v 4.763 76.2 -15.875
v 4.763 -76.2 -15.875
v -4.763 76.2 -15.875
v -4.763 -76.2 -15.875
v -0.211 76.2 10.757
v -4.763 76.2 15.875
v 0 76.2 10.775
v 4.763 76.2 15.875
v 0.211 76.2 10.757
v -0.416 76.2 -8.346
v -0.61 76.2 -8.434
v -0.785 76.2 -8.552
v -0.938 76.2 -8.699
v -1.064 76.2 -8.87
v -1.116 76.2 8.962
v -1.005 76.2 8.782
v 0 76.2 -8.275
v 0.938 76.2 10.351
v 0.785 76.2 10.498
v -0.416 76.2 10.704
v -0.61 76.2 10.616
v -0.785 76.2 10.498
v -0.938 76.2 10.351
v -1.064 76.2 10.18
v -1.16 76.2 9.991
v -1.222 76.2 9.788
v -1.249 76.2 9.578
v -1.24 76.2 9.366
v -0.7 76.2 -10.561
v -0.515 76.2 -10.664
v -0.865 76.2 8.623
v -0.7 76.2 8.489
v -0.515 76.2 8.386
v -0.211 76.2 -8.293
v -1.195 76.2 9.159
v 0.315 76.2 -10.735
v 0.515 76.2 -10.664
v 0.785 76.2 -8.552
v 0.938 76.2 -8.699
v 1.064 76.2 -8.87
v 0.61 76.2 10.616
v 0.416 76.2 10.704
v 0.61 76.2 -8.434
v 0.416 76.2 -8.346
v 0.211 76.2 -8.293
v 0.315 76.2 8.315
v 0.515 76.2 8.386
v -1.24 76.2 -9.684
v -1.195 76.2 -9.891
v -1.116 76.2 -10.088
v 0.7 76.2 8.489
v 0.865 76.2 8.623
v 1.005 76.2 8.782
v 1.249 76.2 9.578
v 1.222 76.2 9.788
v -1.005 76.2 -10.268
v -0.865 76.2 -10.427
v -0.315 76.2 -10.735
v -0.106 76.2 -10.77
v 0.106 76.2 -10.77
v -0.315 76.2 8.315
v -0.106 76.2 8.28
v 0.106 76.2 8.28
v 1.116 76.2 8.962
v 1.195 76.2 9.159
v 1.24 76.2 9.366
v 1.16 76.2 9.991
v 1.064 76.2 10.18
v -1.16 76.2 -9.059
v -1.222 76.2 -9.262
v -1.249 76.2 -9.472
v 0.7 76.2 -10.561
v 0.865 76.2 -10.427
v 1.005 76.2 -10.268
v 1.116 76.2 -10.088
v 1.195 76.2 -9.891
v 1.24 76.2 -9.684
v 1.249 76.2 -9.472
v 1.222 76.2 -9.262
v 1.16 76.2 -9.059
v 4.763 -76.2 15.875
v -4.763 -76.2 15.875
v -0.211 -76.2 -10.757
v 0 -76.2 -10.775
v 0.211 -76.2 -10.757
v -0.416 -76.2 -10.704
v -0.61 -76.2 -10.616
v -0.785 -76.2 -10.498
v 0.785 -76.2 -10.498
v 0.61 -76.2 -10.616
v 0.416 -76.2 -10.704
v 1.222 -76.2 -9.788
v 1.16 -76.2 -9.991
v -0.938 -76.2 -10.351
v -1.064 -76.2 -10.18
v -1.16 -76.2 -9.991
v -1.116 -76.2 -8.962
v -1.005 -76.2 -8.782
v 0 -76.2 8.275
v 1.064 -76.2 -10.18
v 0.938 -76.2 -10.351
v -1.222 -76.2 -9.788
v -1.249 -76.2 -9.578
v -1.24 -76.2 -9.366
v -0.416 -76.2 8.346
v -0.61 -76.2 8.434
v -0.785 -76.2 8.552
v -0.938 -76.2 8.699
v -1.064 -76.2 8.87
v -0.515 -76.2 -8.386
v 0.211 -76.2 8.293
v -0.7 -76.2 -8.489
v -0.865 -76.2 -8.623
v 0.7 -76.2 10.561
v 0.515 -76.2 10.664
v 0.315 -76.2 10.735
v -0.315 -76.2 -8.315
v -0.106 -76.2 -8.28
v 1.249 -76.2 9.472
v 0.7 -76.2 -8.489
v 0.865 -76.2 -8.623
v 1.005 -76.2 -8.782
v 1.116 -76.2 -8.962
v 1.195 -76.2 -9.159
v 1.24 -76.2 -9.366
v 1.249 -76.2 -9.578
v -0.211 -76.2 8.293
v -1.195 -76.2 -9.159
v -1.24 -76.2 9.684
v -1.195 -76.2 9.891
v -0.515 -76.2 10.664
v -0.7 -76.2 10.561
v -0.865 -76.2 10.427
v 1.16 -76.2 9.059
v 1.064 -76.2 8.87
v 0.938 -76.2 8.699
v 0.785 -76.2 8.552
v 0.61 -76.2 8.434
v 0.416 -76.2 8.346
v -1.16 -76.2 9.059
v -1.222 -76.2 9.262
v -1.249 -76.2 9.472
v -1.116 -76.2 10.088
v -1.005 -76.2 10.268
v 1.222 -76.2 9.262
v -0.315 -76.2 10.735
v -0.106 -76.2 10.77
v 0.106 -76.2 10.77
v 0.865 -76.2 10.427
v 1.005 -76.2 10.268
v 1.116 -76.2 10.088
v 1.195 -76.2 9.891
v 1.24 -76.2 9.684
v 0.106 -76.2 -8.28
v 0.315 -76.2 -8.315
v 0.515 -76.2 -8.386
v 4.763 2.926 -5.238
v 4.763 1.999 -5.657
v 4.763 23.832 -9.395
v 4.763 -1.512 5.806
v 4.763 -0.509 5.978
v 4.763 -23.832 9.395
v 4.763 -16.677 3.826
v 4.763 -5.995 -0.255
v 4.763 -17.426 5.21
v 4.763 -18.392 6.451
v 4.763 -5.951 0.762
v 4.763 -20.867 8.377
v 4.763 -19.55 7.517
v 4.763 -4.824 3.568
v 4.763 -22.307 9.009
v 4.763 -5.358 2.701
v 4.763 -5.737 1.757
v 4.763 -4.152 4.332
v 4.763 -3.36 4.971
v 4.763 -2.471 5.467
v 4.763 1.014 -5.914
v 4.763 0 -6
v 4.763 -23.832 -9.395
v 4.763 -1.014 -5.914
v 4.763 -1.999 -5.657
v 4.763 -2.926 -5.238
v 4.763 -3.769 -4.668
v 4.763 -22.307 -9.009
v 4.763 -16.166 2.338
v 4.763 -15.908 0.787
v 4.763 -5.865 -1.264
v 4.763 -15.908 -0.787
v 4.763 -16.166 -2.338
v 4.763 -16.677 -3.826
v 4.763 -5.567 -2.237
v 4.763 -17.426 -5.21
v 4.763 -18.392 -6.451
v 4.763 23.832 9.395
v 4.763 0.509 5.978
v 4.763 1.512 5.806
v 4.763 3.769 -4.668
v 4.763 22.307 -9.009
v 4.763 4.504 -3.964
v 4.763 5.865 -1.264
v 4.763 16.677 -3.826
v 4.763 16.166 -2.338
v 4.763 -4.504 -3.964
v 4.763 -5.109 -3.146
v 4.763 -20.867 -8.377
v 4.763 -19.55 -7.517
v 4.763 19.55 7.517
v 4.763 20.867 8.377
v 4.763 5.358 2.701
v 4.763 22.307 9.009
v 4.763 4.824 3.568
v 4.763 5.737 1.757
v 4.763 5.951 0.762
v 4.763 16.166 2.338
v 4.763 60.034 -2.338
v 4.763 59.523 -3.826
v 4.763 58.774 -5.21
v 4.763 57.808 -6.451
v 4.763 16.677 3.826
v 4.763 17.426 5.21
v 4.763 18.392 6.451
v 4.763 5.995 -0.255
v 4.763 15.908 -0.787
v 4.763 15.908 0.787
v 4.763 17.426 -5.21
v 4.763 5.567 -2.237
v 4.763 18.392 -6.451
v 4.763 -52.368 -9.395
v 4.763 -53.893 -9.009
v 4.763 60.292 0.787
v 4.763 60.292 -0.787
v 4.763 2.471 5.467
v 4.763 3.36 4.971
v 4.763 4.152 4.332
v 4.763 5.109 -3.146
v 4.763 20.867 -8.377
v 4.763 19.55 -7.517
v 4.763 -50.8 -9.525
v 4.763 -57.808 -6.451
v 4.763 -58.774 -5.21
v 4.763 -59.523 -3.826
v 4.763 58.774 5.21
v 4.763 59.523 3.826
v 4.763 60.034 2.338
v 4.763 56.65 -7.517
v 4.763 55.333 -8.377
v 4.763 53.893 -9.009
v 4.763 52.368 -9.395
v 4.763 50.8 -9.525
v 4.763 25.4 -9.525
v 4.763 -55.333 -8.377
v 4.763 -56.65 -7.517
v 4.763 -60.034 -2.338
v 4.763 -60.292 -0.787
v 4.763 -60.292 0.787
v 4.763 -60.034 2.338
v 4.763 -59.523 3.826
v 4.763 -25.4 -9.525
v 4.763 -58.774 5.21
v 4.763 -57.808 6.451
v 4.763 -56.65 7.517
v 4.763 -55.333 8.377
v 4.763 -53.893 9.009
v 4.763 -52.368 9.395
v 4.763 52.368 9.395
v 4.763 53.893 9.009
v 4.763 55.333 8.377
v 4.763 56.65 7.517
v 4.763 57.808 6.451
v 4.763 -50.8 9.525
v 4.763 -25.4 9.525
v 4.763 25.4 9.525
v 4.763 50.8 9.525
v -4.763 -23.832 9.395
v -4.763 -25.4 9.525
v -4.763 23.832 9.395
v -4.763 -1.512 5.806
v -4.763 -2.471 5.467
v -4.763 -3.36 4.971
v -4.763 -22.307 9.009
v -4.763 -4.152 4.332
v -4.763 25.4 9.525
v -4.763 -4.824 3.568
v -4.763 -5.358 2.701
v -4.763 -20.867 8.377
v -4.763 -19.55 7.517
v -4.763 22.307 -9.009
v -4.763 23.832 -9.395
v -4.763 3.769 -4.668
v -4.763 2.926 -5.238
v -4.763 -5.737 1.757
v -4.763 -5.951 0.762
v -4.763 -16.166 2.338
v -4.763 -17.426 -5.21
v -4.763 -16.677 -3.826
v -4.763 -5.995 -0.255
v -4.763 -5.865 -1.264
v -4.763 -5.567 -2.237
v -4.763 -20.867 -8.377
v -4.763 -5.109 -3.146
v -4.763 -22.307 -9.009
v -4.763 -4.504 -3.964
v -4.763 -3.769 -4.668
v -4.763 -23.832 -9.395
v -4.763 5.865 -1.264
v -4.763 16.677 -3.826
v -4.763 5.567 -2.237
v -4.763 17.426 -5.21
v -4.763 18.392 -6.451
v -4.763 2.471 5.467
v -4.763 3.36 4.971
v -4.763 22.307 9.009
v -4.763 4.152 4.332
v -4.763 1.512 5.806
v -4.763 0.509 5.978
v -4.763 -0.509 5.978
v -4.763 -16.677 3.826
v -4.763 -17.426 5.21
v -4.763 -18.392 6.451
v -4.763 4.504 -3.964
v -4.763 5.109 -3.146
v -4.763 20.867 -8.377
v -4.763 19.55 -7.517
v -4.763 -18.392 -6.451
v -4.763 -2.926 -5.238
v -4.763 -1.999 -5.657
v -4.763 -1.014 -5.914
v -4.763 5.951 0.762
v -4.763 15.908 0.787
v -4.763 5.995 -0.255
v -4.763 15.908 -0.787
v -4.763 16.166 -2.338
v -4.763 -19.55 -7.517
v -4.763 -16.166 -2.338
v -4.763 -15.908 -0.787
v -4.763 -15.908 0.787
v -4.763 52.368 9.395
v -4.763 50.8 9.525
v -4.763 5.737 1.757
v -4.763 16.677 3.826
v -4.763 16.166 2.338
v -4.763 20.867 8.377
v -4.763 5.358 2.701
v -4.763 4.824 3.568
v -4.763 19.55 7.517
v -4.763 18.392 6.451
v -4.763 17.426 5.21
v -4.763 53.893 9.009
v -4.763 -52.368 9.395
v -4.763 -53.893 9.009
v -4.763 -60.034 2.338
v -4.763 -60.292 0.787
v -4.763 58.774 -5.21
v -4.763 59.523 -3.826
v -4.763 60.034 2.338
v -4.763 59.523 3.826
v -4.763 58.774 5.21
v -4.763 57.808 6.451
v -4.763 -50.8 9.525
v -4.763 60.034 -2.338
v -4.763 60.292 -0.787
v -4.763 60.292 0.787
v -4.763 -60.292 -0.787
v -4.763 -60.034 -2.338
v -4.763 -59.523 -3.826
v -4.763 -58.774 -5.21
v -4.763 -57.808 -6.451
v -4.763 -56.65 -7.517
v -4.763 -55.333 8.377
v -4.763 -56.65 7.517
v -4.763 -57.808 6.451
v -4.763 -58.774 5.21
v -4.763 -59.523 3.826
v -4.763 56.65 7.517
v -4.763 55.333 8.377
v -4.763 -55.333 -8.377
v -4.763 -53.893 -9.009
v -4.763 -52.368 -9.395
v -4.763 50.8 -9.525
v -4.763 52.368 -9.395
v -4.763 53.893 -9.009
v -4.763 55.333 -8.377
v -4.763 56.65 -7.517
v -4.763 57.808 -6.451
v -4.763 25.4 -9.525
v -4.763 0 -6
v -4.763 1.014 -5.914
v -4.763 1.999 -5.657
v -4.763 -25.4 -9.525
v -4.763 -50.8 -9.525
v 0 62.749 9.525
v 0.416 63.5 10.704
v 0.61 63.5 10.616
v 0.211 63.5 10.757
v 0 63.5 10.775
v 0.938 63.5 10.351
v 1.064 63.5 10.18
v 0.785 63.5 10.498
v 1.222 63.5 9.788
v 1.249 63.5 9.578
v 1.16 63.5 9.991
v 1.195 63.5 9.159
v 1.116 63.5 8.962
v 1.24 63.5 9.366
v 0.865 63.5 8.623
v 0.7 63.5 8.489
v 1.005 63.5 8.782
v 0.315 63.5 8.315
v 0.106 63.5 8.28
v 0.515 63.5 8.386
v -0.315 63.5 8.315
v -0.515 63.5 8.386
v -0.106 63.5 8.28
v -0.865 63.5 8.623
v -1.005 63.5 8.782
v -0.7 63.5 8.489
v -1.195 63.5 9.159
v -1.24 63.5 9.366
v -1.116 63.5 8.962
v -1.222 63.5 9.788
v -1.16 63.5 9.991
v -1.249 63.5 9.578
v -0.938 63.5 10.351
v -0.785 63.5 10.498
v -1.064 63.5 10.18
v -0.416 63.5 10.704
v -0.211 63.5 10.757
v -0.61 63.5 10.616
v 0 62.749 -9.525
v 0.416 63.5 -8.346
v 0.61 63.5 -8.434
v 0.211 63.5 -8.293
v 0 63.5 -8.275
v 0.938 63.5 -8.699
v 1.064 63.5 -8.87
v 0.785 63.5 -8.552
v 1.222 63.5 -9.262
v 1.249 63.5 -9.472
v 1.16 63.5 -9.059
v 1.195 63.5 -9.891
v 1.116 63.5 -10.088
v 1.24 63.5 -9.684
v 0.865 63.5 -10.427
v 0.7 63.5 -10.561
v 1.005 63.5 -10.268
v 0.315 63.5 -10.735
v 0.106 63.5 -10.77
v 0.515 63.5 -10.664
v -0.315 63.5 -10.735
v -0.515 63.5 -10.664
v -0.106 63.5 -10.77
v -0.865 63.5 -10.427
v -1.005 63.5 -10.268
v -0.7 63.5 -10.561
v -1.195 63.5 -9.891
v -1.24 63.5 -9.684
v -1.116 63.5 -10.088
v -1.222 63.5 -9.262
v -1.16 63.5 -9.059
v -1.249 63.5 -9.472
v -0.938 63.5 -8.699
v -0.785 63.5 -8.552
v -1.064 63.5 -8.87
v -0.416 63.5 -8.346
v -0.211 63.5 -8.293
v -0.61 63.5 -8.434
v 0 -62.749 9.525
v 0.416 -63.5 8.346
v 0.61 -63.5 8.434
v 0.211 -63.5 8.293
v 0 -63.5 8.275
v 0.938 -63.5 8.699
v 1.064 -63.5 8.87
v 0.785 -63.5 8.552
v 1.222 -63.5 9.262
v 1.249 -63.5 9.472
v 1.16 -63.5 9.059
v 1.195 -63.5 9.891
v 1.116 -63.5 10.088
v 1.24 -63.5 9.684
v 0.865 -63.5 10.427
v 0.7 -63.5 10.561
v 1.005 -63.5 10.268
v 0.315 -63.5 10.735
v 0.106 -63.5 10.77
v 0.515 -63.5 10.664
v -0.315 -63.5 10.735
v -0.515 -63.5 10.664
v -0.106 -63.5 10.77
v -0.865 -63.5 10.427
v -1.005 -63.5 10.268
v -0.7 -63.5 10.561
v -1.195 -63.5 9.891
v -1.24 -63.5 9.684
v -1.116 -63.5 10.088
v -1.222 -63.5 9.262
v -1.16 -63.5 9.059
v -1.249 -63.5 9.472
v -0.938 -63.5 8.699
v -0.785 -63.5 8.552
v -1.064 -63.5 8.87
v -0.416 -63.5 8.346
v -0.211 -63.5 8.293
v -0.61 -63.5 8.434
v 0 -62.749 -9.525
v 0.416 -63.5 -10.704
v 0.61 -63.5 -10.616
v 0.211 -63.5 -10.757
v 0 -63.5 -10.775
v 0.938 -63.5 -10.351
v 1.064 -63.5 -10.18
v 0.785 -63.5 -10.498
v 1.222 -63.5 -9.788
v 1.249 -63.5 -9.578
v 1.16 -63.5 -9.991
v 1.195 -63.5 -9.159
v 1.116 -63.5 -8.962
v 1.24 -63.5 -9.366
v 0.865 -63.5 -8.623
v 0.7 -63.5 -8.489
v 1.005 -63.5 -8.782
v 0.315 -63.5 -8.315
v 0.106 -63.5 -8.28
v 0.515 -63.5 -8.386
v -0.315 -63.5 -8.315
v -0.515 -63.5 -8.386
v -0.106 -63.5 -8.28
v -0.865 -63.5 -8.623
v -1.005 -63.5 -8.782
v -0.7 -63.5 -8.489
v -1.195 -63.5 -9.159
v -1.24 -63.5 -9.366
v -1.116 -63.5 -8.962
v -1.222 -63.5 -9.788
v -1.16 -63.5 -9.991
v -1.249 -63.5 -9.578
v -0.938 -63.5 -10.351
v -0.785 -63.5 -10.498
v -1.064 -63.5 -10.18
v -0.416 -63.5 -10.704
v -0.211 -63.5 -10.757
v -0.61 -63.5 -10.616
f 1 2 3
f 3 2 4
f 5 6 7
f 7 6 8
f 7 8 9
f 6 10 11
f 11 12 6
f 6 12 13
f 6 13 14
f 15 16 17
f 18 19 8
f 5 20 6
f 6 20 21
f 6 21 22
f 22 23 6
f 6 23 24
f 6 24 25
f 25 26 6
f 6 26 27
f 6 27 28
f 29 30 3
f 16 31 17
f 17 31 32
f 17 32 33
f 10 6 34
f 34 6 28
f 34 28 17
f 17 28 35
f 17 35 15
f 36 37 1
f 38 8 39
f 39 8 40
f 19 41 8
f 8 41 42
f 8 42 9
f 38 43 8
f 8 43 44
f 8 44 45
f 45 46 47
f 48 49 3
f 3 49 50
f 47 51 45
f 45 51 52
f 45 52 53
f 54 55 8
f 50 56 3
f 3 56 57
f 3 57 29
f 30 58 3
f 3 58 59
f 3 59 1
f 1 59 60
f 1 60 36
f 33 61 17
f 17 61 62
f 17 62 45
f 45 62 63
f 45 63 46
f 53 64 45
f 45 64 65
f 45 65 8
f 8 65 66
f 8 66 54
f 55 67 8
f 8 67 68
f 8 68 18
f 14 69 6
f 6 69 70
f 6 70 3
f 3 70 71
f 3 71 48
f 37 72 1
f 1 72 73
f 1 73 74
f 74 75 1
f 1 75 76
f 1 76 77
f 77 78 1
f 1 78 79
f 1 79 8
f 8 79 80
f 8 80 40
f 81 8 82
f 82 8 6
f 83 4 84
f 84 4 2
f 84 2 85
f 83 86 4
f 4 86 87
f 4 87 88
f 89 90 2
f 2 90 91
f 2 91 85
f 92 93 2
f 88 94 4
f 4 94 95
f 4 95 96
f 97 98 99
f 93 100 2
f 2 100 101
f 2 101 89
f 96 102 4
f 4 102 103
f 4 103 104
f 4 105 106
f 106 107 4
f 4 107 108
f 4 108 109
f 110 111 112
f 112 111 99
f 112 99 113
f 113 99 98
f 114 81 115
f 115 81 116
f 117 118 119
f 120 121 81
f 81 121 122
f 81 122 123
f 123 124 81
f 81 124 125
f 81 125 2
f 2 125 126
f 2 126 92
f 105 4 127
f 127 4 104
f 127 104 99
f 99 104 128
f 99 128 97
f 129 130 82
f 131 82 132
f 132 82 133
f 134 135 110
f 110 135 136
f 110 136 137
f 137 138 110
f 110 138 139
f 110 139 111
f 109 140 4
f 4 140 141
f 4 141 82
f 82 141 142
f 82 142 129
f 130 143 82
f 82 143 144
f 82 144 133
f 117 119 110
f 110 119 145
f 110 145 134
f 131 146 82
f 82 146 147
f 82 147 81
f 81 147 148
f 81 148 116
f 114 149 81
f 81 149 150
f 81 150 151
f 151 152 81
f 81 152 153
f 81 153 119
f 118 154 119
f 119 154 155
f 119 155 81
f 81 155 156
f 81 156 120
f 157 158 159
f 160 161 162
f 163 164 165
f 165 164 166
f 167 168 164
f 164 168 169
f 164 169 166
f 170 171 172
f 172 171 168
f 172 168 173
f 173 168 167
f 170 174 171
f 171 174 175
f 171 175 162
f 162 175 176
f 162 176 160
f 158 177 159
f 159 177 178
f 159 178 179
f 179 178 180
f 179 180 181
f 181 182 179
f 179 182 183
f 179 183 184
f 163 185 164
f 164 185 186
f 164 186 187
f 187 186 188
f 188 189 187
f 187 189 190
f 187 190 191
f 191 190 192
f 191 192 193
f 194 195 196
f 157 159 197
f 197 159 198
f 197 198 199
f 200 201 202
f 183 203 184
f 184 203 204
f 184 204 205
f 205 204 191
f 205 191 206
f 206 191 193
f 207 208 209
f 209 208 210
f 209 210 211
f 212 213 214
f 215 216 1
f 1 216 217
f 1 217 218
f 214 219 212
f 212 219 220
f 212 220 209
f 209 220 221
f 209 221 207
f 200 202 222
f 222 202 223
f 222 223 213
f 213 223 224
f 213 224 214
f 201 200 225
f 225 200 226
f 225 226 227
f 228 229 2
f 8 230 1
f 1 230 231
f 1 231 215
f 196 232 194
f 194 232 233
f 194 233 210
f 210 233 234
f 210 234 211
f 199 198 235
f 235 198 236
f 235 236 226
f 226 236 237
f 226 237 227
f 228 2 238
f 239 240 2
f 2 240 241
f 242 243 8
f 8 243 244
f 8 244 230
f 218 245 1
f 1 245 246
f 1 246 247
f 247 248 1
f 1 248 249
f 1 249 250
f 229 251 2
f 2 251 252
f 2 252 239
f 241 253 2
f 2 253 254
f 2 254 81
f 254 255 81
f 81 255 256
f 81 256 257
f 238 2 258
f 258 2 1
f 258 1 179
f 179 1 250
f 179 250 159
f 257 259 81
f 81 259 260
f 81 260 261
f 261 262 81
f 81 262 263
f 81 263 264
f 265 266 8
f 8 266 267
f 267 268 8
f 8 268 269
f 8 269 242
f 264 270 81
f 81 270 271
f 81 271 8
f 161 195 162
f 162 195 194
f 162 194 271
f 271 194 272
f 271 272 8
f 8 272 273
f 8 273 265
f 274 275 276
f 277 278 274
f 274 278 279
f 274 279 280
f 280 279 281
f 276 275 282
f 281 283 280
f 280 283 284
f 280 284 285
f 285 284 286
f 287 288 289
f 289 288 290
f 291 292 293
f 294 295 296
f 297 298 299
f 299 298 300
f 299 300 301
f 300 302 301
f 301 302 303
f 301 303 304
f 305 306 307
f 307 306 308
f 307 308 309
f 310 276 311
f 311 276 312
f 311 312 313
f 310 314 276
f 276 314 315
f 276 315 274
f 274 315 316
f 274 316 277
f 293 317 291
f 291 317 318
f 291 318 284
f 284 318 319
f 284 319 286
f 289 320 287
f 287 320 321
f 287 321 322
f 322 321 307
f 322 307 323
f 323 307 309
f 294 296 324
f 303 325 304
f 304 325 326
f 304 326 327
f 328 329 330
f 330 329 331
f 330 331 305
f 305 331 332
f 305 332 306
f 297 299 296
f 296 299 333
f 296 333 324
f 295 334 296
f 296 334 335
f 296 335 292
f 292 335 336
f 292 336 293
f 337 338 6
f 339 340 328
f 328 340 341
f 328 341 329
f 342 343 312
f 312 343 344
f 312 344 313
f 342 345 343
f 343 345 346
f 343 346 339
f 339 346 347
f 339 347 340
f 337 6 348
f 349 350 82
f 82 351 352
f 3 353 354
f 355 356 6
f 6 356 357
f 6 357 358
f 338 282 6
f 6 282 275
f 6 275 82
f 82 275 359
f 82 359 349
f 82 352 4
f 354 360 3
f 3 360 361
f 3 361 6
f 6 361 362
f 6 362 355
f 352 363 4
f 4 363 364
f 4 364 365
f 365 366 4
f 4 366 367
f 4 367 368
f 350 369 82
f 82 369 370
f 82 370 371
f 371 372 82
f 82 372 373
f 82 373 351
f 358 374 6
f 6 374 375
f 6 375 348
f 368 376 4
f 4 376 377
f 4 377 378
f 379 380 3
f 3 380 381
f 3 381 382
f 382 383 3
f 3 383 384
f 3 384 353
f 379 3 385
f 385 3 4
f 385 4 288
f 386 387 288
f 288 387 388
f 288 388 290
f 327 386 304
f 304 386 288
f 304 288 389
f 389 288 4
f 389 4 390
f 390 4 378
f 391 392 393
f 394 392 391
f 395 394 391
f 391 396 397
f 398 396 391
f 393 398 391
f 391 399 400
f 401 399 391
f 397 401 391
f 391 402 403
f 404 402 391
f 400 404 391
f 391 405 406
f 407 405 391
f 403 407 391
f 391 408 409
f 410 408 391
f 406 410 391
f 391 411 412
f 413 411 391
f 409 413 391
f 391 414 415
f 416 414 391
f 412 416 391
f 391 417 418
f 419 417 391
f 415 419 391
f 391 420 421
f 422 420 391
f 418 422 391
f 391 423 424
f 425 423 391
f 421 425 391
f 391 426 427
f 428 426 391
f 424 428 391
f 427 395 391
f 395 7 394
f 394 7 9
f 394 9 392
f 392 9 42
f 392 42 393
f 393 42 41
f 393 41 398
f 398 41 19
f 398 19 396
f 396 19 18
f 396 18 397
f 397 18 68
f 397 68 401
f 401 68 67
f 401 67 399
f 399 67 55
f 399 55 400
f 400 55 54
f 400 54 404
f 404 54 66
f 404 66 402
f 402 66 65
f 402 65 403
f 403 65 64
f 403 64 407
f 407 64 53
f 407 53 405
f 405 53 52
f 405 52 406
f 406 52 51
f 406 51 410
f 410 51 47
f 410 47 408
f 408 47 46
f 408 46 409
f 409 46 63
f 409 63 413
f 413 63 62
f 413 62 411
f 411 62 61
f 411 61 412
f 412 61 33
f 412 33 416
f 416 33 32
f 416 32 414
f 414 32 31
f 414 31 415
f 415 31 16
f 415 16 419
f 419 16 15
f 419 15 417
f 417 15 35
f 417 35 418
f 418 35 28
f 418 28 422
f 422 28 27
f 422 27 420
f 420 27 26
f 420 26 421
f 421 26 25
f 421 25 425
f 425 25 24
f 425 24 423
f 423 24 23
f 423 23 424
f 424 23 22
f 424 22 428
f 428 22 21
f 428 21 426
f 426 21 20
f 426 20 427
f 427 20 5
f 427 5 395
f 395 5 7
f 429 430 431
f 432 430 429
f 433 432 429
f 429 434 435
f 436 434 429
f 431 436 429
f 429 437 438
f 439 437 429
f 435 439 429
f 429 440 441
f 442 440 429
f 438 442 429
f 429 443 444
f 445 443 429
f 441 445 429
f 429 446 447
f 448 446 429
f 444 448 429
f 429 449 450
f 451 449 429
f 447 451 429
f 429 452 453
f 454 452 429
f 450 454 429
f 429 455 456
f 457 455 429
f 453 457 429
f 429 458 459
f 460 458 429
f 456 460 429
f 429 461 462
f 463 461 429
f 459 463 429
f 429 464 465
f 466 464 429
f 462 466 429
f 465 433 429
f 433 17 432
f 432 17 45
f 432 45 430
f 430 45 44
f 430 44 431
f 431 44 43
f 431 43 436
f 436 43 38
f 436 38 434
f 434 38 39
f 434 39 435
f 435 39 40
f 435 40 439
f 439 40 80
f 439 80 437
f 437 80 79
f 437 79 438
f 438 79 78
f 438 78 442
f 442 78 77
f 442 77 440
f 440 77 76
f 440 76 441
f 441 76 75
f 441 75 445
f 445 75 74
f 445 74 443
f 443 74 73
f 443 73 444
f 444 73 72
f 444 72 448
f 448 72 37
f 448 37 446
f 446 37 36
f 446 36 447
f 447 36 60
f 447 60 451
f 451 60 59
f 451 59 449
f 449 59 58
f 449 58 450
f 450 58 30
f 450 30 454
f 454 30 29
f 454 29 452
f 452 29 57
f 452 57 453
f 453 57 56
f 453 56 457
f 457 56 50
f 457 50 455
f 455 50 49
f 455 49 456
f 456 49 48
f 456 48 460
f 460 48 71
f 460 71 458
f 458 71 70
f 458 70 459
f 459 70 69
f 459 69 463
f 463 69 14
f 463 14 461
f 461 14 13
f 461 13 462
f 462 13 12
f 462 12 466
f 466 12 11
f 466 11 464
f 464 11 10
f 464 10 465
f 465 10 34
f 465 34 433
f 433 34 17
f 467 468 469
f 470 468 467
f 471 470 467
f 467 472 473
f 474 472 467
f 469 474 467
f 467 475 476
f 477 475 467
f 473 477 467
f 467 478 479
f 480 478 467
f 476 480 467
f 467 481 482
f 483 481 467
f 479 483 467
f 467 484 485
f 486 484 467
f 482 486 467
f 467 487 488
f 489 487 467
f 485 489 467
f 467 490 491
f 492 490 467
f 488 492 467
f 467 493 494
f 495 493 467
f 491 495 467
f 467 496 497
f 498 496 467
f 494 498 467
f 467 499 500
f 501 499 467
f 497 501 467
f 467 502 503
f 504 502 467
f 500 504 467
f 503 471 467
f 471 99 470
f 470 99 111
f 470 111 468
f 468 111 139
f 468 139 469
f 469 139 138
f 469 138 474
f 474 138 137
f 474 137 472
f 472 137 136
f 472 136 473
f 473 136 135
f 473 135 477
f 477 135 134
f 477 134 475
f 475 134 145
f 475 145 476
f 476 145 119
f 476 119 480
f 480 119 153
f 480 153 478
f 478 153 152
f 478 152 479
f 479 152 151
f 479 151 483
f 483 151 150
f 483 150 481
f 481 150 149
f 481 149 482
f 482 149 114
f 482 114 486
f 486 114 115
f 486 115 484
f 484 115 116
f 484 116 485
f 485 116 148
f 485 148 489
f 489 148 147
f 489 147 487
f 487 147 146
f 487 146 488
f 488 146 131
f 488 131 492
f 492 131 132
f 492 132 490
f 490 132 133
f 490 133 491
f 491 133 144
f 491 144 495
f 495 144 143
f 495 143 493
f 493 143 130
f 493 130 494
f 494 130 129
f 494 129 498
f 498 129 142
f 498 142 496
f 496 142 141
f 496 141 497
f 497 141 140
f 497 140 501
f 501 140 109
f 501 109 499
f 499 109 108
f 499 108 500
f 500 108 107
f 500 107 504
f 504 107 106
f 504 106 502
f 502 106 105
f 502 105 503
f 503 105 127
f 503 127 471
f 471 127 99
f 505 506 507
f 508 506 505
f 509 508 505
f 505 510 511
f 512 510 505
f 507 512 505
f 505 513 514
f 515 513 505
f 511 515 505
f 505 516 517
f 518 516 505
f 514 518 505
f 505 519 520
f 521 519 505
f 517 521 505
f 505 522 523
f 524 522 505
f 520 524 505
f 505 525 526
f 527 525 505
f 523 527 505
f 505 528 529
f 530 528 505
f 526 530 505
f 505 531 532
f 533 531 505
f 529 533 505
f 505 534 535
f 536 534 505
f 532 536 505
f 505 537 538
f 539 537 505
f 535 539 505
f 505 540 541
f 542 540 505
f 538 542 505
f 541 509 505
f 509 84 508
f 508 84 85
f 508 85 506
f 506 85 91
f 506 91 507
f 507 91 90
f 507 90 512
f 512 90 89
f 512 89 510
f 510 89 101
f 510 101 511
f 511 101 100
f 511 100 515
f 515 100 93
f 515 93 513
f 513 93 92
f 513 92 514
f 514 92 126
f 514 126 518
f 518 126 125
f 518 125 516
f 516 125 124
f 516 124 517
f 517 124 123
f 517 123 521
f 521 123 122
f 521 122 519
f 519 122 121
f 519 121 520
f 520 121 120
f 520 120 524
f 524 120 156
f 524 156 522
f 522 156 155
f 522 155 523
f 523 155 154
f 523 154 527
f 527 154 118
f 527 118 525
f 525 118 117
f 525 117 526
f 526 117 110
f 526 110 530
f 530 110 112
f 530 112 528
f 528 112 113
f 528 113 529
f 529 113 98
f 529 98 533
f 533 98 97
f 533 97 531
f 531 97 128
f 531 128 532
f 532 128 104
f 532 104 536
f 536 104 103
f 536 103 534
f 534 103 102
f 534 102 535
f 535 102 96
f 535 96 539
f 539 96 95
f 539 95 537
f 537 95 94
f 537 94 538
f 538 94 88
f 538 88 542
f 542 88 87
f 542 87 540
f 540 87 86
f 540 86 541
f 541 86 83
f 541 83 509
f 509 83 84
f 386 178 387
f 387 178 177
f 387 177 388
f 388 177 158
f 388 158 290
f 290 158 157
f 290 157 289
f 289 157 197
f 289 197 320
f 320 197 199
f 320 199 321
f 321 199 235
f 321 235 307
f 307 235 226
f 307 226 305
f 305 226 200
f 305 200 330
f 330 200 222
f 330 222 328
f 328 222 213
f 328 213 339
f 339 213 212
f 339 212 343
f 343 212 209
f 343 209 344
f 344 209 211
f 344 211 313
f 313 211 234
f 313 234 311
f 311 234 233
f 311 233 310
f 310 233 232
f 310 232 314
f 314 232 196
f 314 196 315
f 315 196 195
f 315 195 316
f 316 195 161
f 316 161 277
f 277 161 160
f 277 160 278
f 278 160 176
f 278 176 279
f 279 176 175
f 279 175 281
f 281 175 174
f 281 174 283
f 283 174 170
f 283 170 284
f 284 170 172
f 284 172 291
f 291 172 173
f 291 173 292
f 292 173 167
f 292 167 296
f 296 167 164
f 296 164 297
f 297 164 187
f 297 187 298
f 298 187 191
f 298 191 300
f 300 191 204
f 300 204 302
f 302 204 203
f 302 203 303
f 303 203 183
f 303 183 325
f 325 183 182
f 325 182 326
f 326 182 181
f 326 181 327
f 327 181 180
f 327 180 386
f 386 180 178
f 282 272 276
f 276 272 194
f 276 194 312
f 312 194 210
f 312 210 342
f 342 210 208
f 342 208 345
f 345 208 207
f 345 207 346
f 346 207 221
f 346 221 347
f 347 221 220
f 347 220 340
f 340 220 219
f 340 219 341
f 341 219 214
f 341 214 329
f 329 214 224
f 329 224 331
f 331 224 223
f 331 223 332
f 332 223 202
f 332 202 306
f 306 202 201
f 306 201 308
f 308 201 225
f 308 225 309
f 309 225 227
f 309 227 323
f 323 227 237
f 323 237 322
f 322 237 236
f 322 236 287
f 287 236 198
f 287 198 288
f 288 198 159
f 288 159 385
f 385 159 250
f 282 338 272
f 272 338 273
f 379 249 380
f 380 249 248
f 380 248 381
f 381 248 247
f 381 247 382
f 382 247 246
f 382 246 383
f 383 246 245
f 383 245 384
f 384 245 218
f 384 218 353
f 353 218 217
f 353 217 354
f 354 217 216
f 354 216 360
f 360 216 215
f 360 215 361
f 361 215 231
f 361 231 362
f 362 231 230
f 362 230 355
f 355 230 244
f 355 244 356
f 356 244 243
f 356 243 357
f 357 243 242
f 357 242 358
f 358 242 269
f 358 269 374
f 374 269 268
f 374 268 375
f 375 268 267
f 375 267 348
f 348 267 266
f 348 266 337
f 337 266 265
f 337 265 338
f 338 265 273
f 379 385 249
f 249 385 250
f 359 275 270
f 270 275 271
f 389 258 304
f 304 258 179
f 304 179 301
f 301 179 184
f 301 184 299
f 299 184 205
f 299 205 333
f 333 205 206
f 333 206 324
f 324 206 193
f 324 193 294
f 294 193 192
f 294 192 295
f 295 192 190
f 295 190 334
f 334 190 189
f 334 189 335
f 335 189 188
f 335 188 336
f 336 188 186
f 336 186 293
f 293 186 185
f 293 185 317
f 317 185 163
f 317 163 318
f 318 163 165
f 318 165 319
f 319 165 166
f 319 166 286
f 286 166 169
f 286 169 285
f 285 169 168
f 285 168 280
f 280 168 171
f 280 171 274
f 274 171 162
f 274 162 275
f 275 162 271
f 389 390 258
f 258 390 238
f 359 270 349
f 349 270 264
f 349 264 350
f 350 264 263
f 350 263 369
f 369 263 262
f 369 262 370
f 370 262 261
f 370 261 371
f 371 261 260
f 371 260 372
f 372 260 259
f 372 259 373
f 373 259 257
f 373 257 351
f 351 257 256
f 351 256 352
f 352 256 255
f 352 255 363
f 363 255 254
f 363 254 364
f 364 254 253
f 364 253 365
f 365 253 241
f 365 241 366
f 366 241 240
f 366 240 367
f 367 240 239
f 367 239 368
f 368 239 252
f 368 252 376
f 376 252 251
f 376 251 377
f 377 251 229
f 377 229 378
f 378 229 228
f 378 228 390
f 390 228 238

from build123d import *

# Parameters (mm, degrees)
SKETCH1_W                      = 31.75
SKETCH1_H                      = 152.4
BOSS_EXTRUDE1_DEPTH            = 4.7625
M3X0_5_TAPPED_HOLE1_AT_2_COUNT = 2
M3X0_5_TAPPED_HOLE1_AT_2_PITCH = 19.05
F_12_0MM_DOWEL_HOLE1_D         = 12
CUT_EXTRUDE1_DEPTH             = 79.416715374


with BuildPart() as part:
    # Sketch1 → Boss-Extrude1 (new, symmetric)
    with BuildSketch(Plane(origin=(0, 0, 0), x_dir=(0, 0, -1), z_dir=(1, 0, 0))):
        Rectangle(SKETCH1_W, SKETCH1_H)
    extrude(amount=BOSS_EXTRUDE1_DEPTH, both=True)

    # Sketch4 → M3x0.5 Tapped Hole1 (revolve, cut)
    with BuildSketch(Plane(origin=(0, 76.2, -9.525), x_dir=(0, 0, 1), z_dir=(1, 0, 0))):
        Polygon((0, 0), (0, 13.451075774), (1.25, 12.7), (1.25, 0), align=None)
    m3x0_5_tapped_hole1 = revolve(axis=Axis((0, 82.55, -9.525), (0, -1, 0)), mode=Mode.SUBTRACT)

    # M3x0.5 Tapped Hole1 at 2: M3x0.5 Tapped Hole1 ×2
    with Locations(*[(0, 0, i * M3X0_5_TAPPED_HOLE1_AT_2_PITCH) for i in range(1, M3X0_5_TAPPED_HOLE1_AT_2_COUNT)]):
        add(m3x0_5_tapped_hole1, mode=Mode.SUBTRACT)

    # Mirror1: M3x0.5 Tapped Hole1 across plane
    add(m3x0_5_tapped_hole1.mirror(Plane.ZX), mode=Mode.SUBTRACT)

    # Mirror1 copy 1 sketch → Mirror1 copy 1 (revolve, cut)
    with BuildSketch(Plane(origin=(0, -76.2, 9.525), x_dir=(0, 0, 1), z_dir=(1, 0, 0))):
        Polygon((0, 0), (0, -13.451075774), (1.25, -12.7), (1.25, 0), align=None)
    revolve(axis=Axis((0, -82.55, 9.525), (0, -1, 0)), mode=Mode.SUBTRACT)

    # Ø12.0mm Dowel Hole1 (through all)
    with Locations(Plane(origin=(4.7625, 0, 0), x_dir=(0, 0, -1), z_dir=(1, 0, 0))):
        with Locations((0, 0)):
            Hole(F_12_0MM_DOWEL_HOLE1_D / 2)

    # Sketch9 → Cut-Extrude1 (cut, through all)
    with BuildSketch(Plane(origin=(4.7625, 0, 0), x_dir=(0, 0, -1), z_dir=(1, 0, 0))):
        with BuildLine():
            Line((9.525, 50.8), (9.525, 25.4))
            ThreePointArc((9.525, 25.4), (0, 15.875), (-9.525, 25.4))
            Line((-9.525, 25.4), (-9.525, 50.8))
            ThreePointArc((-9.525, 50.8), (0, 60.325), (9.525, 50.8))
        make_face()
        with BuildLine():
            Line((9.525, -25.4), (9.525, -50.8))
            ThreePointArc((9.525, -50.8), (0, -60.325), (-9.525, -50.8))
            Line((-9.525, -50.8), (-9.525, -25.4))
            ThreePointArc((-9.525, -25.4), (0, -15.875), (9.525, -25.4))
        make_face()
    extrude(amount=-CUT_EXTRUDE1_DEPTH, mode=Mode.SUBTRACT)


solid = part.part
